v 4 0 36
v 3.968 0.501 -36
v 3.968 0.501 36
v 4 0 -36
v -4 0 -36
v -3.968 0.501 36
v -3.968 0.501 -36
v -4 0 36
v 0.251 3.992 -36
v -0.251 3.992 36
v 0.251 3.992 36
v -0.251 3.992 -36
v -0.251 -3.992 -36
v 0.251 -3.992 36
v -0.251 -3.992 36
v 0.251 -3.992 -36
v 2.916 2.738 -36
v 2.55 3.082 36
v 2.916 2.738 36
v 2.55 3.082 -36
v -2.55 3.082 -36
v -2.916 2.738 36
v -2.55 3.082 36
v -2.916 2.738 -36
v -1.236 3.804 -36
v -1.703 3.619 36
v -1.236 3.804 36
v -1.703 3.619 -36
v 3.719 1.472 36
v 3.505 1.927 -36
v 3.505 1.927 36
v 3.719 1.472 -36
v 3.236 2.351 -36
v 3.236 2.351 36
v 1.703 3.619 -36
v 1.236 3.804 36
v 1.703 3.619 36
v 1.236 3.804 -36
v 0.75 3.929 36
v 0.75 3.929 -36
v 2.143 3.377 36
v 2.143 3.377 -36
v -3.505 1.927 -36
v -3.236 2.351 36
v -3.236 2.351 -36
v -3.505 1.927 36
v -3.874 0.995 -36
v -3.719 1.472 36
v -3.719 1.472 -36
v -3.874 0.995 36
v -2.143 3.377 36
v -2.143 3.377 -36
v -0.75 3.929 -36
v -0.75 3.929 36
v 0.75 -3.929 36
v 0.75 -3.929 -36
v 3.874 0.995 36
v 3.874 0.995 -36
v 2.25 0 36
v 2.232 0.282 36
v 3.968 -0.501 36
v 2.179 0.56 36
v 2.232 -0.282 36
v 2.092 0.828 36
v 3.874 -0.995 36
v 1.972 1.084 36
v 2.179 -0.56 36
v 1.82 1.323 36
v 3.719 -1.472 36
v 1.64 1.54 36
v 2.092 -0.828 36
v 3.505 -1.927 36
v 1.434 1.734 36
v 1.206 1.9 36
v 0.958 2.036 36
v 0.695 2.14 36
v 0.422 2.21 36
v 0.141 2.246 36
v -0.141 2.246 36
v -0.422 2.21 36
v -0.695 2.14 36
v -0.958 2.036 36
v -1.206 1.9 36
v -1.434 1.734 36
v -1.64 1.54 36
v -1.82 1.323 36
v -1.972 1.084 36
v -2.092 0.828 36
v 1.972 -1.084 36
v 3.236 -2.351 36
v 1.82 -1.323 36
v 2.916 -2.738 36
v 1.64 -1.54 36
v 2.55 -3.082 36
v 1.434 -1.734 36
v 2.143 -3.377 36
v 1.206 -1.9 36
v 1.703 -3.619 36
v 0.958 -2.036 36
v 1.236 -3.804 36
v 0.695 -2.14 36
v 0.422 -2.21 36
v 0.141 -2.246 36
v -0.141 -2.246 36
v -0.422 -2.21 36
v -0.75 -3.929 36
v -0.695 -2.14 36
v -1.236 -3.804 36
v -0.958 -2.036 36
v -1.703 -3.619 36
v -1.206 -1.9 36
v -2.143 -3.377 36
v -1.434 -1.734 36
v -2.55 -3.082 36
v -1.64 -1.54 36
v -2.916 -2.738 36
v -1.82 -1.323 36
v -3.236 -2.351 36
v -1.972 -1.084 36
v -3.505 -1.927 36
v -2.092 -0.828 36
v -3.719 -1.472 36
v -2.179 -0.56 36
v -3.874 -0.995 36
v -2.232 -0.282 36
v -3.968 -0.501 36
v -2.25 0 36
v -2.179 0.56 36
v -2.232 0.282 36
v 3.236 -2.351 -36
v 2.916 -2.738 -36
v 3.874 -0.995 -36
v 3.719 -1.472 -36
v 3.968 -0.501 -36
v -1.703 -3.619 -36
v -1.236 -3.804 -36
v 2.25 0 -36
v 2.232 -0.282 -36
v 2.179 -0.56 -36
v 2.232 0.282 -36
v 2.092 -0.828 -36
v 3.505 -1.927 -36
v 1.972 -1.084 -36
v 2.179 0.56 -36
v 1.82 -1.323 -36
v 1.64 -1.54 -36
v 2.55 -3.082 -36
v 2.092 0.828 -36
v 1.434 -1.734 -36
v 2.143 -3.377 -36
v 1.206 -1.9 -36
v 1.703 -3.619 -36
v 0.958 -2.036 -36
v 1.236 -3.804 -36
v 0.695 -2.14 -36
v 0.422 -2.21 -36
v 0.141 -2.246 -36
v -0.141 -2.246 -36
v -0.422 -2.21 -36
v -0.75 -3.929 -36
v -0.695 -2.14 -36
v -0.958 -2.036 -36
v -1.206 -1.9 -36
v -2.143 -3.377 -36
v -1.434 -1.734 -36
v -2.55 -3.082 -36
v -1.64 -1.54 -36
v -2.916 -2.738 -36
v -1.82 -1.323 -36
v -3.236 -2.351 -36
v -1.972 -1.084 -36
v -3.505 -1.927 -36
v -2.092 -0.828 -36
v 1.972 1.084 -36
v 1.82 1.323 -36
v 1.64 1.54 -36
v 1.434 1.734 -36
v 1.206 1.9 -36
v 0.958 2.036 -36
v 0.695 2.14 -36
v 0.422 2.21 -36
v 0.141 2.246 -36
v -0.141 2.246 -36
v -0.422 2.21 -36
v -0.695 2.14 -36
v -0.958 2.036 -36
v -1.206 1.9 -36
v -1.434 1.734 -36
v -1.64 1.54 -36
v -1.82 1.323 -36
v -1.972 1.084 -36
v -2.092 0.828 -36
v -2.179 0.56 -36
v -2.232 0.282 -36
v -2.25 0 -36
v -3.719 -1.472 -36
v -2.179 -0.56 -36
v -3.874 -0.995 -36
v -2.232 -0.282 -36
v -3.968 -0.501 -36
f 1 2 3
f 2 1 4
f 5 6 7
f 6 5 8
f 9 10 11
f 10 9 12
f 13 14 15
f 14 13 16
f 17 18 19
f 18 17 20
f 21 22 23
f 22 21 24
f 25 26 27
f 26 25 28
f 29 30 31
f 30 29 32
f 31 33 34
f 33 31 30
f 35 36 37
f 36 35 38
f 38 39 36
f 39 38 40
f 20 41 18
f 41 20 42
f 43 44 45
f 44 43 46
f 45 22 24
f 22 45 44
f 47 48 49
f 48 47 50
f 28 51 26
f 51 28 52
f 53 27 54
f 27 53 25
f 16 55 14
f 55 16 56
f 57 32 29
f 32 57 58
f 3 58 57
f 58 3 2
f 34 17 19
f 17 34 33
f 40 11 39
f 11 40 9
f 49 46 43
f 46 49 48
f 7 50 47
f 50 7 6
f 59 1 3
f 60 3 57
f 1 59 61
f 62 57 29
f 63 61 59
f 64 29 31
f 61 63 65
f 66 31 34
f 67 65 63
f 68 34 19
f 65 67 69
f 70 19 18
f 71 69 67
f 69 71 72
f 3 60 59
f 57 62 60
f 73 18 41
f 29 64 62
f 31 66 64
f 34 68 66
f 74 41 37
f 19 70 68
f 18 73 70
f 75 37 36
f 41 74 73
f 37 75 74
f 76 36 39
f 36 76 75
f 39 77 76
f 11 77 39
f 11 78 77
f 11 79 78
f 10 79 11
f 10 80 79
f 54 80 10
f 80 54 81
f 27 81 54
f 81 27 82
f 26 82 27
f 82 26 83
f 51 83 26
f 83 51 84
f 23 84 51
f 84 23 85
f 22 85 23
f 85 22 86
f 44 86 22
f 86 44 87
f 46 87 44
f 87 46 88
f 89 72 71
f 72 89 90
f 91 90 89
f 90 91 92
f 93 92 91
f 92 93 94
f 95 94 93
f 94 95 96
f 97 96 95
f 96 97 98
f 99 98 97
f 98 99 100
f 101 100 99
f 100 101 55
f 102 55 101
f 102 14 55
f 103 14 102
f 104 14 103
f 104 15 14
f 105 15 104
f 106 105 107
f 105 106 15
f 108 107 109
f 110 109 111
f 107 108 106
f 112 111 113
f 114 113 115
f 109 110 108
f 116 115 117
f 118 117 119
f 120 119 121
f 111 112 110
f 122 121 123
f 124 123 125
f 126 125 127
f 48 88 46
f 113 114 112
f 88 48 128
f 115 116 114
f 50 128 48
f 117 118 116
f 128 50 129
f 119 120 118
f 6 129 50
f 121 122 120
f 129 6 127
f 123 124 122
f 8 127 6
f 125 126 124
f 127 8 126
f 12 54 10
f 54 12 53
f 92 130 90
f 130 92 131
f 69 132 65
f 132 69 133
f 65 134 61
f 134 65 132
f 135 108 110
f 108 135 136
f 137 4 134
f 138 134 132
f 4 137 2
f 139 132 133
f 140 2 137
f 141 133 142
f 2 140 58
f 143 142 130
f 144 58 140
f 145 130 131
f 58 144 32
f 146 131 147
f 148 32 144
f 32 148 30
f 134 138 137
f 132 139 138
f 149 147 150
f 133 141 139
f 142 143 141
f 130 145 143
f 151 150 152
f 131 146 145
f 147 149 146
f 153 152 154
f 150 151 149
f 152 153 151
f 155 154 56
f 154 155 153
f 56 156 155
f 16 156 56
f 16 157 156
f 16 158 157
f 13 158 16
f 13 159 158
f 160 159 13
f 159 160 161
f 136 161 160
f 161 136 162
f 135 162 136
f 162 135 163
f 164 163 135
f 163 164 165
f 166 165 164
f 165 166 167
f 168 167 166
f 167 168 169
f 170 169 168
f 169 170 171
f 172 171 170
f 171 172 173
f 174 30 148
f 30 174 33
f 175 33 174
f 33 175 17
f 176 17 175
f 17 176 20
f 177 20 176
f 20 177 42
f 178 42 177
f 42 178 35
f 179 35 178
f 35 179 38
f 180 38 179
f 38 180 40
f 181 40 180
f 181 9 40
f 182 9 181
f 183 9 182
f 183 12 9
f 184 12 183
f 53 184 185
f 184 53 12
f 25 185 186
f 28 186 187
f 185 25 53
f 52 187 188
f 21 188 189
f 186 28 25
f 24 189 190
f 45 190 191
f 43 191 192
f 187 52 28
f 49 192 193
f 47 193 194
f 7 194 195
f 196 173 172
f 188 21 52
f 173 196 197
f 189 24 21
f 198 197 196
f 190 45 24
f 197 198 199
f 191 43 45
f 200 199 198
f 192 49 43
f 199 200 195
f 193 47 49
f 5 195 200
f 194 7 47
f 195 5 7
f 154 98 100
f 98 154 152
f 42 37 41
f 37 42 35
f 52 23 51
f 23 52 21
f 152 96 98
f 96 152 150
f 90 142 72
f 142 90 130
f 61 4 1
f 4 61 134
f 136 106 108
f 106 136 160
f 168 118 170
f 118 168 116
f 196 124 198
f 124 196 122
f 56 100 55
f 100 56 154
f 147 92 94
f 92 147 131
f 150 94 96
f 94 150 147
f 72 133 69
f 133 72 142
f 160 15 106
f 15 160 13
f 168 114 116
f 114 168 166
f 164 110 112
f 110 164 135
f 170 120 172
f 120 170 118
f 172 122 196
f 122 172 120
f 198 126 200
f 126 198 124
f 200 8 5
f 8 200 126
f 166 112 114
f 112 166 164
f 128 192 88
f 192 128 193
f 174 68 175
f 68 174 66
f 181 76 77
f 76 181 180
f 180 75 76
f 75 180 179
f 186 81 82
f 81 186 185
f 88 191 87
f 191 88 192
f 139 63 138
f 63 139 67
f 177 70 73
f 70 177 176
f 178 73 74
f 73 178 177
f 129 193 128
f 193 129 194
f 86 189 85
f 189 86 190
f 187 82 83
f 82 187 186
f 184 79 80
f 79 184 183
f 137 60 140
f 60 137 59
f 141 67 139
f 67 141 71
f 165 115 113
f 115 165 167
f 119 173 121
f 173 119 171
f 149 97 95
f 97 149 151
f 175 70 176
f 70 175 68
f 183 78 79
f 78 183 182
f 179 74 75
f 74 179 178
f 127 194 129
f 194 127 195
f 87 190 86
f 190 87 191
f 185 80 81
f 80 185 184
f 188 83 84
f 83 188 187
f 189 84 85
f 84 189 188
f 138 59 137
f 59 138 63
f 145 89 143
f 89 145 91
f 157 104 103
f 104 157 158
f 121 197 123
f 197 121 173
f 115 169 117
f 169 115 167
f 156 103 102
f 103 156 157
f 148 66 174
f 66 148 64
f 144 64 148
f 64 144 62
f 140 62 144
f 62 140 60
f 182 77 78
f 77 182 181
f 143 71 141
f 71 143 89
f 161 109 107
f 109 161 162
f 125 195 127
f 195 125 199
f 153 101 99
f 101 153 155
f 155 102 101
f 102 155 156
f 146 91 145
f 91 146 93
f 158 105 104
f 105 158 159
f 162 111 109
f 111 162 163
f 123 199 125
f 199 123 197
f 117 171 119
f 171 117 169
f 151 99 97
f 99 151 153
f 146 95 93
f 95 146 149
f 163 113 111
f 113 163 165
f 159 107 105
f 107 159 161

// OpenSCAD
$fn = 50;


difference() {
	union() {
		translate(v = [0, 0, -36.0000000000]) {
			cylinder(h = 72, r = 4.0000000000);
		}
	}
	union() {
		translate(v = [0, 0, -100.0000000000]) {
			cylinder(h = 200, r = 2.2500000000);
		}
	}
}
